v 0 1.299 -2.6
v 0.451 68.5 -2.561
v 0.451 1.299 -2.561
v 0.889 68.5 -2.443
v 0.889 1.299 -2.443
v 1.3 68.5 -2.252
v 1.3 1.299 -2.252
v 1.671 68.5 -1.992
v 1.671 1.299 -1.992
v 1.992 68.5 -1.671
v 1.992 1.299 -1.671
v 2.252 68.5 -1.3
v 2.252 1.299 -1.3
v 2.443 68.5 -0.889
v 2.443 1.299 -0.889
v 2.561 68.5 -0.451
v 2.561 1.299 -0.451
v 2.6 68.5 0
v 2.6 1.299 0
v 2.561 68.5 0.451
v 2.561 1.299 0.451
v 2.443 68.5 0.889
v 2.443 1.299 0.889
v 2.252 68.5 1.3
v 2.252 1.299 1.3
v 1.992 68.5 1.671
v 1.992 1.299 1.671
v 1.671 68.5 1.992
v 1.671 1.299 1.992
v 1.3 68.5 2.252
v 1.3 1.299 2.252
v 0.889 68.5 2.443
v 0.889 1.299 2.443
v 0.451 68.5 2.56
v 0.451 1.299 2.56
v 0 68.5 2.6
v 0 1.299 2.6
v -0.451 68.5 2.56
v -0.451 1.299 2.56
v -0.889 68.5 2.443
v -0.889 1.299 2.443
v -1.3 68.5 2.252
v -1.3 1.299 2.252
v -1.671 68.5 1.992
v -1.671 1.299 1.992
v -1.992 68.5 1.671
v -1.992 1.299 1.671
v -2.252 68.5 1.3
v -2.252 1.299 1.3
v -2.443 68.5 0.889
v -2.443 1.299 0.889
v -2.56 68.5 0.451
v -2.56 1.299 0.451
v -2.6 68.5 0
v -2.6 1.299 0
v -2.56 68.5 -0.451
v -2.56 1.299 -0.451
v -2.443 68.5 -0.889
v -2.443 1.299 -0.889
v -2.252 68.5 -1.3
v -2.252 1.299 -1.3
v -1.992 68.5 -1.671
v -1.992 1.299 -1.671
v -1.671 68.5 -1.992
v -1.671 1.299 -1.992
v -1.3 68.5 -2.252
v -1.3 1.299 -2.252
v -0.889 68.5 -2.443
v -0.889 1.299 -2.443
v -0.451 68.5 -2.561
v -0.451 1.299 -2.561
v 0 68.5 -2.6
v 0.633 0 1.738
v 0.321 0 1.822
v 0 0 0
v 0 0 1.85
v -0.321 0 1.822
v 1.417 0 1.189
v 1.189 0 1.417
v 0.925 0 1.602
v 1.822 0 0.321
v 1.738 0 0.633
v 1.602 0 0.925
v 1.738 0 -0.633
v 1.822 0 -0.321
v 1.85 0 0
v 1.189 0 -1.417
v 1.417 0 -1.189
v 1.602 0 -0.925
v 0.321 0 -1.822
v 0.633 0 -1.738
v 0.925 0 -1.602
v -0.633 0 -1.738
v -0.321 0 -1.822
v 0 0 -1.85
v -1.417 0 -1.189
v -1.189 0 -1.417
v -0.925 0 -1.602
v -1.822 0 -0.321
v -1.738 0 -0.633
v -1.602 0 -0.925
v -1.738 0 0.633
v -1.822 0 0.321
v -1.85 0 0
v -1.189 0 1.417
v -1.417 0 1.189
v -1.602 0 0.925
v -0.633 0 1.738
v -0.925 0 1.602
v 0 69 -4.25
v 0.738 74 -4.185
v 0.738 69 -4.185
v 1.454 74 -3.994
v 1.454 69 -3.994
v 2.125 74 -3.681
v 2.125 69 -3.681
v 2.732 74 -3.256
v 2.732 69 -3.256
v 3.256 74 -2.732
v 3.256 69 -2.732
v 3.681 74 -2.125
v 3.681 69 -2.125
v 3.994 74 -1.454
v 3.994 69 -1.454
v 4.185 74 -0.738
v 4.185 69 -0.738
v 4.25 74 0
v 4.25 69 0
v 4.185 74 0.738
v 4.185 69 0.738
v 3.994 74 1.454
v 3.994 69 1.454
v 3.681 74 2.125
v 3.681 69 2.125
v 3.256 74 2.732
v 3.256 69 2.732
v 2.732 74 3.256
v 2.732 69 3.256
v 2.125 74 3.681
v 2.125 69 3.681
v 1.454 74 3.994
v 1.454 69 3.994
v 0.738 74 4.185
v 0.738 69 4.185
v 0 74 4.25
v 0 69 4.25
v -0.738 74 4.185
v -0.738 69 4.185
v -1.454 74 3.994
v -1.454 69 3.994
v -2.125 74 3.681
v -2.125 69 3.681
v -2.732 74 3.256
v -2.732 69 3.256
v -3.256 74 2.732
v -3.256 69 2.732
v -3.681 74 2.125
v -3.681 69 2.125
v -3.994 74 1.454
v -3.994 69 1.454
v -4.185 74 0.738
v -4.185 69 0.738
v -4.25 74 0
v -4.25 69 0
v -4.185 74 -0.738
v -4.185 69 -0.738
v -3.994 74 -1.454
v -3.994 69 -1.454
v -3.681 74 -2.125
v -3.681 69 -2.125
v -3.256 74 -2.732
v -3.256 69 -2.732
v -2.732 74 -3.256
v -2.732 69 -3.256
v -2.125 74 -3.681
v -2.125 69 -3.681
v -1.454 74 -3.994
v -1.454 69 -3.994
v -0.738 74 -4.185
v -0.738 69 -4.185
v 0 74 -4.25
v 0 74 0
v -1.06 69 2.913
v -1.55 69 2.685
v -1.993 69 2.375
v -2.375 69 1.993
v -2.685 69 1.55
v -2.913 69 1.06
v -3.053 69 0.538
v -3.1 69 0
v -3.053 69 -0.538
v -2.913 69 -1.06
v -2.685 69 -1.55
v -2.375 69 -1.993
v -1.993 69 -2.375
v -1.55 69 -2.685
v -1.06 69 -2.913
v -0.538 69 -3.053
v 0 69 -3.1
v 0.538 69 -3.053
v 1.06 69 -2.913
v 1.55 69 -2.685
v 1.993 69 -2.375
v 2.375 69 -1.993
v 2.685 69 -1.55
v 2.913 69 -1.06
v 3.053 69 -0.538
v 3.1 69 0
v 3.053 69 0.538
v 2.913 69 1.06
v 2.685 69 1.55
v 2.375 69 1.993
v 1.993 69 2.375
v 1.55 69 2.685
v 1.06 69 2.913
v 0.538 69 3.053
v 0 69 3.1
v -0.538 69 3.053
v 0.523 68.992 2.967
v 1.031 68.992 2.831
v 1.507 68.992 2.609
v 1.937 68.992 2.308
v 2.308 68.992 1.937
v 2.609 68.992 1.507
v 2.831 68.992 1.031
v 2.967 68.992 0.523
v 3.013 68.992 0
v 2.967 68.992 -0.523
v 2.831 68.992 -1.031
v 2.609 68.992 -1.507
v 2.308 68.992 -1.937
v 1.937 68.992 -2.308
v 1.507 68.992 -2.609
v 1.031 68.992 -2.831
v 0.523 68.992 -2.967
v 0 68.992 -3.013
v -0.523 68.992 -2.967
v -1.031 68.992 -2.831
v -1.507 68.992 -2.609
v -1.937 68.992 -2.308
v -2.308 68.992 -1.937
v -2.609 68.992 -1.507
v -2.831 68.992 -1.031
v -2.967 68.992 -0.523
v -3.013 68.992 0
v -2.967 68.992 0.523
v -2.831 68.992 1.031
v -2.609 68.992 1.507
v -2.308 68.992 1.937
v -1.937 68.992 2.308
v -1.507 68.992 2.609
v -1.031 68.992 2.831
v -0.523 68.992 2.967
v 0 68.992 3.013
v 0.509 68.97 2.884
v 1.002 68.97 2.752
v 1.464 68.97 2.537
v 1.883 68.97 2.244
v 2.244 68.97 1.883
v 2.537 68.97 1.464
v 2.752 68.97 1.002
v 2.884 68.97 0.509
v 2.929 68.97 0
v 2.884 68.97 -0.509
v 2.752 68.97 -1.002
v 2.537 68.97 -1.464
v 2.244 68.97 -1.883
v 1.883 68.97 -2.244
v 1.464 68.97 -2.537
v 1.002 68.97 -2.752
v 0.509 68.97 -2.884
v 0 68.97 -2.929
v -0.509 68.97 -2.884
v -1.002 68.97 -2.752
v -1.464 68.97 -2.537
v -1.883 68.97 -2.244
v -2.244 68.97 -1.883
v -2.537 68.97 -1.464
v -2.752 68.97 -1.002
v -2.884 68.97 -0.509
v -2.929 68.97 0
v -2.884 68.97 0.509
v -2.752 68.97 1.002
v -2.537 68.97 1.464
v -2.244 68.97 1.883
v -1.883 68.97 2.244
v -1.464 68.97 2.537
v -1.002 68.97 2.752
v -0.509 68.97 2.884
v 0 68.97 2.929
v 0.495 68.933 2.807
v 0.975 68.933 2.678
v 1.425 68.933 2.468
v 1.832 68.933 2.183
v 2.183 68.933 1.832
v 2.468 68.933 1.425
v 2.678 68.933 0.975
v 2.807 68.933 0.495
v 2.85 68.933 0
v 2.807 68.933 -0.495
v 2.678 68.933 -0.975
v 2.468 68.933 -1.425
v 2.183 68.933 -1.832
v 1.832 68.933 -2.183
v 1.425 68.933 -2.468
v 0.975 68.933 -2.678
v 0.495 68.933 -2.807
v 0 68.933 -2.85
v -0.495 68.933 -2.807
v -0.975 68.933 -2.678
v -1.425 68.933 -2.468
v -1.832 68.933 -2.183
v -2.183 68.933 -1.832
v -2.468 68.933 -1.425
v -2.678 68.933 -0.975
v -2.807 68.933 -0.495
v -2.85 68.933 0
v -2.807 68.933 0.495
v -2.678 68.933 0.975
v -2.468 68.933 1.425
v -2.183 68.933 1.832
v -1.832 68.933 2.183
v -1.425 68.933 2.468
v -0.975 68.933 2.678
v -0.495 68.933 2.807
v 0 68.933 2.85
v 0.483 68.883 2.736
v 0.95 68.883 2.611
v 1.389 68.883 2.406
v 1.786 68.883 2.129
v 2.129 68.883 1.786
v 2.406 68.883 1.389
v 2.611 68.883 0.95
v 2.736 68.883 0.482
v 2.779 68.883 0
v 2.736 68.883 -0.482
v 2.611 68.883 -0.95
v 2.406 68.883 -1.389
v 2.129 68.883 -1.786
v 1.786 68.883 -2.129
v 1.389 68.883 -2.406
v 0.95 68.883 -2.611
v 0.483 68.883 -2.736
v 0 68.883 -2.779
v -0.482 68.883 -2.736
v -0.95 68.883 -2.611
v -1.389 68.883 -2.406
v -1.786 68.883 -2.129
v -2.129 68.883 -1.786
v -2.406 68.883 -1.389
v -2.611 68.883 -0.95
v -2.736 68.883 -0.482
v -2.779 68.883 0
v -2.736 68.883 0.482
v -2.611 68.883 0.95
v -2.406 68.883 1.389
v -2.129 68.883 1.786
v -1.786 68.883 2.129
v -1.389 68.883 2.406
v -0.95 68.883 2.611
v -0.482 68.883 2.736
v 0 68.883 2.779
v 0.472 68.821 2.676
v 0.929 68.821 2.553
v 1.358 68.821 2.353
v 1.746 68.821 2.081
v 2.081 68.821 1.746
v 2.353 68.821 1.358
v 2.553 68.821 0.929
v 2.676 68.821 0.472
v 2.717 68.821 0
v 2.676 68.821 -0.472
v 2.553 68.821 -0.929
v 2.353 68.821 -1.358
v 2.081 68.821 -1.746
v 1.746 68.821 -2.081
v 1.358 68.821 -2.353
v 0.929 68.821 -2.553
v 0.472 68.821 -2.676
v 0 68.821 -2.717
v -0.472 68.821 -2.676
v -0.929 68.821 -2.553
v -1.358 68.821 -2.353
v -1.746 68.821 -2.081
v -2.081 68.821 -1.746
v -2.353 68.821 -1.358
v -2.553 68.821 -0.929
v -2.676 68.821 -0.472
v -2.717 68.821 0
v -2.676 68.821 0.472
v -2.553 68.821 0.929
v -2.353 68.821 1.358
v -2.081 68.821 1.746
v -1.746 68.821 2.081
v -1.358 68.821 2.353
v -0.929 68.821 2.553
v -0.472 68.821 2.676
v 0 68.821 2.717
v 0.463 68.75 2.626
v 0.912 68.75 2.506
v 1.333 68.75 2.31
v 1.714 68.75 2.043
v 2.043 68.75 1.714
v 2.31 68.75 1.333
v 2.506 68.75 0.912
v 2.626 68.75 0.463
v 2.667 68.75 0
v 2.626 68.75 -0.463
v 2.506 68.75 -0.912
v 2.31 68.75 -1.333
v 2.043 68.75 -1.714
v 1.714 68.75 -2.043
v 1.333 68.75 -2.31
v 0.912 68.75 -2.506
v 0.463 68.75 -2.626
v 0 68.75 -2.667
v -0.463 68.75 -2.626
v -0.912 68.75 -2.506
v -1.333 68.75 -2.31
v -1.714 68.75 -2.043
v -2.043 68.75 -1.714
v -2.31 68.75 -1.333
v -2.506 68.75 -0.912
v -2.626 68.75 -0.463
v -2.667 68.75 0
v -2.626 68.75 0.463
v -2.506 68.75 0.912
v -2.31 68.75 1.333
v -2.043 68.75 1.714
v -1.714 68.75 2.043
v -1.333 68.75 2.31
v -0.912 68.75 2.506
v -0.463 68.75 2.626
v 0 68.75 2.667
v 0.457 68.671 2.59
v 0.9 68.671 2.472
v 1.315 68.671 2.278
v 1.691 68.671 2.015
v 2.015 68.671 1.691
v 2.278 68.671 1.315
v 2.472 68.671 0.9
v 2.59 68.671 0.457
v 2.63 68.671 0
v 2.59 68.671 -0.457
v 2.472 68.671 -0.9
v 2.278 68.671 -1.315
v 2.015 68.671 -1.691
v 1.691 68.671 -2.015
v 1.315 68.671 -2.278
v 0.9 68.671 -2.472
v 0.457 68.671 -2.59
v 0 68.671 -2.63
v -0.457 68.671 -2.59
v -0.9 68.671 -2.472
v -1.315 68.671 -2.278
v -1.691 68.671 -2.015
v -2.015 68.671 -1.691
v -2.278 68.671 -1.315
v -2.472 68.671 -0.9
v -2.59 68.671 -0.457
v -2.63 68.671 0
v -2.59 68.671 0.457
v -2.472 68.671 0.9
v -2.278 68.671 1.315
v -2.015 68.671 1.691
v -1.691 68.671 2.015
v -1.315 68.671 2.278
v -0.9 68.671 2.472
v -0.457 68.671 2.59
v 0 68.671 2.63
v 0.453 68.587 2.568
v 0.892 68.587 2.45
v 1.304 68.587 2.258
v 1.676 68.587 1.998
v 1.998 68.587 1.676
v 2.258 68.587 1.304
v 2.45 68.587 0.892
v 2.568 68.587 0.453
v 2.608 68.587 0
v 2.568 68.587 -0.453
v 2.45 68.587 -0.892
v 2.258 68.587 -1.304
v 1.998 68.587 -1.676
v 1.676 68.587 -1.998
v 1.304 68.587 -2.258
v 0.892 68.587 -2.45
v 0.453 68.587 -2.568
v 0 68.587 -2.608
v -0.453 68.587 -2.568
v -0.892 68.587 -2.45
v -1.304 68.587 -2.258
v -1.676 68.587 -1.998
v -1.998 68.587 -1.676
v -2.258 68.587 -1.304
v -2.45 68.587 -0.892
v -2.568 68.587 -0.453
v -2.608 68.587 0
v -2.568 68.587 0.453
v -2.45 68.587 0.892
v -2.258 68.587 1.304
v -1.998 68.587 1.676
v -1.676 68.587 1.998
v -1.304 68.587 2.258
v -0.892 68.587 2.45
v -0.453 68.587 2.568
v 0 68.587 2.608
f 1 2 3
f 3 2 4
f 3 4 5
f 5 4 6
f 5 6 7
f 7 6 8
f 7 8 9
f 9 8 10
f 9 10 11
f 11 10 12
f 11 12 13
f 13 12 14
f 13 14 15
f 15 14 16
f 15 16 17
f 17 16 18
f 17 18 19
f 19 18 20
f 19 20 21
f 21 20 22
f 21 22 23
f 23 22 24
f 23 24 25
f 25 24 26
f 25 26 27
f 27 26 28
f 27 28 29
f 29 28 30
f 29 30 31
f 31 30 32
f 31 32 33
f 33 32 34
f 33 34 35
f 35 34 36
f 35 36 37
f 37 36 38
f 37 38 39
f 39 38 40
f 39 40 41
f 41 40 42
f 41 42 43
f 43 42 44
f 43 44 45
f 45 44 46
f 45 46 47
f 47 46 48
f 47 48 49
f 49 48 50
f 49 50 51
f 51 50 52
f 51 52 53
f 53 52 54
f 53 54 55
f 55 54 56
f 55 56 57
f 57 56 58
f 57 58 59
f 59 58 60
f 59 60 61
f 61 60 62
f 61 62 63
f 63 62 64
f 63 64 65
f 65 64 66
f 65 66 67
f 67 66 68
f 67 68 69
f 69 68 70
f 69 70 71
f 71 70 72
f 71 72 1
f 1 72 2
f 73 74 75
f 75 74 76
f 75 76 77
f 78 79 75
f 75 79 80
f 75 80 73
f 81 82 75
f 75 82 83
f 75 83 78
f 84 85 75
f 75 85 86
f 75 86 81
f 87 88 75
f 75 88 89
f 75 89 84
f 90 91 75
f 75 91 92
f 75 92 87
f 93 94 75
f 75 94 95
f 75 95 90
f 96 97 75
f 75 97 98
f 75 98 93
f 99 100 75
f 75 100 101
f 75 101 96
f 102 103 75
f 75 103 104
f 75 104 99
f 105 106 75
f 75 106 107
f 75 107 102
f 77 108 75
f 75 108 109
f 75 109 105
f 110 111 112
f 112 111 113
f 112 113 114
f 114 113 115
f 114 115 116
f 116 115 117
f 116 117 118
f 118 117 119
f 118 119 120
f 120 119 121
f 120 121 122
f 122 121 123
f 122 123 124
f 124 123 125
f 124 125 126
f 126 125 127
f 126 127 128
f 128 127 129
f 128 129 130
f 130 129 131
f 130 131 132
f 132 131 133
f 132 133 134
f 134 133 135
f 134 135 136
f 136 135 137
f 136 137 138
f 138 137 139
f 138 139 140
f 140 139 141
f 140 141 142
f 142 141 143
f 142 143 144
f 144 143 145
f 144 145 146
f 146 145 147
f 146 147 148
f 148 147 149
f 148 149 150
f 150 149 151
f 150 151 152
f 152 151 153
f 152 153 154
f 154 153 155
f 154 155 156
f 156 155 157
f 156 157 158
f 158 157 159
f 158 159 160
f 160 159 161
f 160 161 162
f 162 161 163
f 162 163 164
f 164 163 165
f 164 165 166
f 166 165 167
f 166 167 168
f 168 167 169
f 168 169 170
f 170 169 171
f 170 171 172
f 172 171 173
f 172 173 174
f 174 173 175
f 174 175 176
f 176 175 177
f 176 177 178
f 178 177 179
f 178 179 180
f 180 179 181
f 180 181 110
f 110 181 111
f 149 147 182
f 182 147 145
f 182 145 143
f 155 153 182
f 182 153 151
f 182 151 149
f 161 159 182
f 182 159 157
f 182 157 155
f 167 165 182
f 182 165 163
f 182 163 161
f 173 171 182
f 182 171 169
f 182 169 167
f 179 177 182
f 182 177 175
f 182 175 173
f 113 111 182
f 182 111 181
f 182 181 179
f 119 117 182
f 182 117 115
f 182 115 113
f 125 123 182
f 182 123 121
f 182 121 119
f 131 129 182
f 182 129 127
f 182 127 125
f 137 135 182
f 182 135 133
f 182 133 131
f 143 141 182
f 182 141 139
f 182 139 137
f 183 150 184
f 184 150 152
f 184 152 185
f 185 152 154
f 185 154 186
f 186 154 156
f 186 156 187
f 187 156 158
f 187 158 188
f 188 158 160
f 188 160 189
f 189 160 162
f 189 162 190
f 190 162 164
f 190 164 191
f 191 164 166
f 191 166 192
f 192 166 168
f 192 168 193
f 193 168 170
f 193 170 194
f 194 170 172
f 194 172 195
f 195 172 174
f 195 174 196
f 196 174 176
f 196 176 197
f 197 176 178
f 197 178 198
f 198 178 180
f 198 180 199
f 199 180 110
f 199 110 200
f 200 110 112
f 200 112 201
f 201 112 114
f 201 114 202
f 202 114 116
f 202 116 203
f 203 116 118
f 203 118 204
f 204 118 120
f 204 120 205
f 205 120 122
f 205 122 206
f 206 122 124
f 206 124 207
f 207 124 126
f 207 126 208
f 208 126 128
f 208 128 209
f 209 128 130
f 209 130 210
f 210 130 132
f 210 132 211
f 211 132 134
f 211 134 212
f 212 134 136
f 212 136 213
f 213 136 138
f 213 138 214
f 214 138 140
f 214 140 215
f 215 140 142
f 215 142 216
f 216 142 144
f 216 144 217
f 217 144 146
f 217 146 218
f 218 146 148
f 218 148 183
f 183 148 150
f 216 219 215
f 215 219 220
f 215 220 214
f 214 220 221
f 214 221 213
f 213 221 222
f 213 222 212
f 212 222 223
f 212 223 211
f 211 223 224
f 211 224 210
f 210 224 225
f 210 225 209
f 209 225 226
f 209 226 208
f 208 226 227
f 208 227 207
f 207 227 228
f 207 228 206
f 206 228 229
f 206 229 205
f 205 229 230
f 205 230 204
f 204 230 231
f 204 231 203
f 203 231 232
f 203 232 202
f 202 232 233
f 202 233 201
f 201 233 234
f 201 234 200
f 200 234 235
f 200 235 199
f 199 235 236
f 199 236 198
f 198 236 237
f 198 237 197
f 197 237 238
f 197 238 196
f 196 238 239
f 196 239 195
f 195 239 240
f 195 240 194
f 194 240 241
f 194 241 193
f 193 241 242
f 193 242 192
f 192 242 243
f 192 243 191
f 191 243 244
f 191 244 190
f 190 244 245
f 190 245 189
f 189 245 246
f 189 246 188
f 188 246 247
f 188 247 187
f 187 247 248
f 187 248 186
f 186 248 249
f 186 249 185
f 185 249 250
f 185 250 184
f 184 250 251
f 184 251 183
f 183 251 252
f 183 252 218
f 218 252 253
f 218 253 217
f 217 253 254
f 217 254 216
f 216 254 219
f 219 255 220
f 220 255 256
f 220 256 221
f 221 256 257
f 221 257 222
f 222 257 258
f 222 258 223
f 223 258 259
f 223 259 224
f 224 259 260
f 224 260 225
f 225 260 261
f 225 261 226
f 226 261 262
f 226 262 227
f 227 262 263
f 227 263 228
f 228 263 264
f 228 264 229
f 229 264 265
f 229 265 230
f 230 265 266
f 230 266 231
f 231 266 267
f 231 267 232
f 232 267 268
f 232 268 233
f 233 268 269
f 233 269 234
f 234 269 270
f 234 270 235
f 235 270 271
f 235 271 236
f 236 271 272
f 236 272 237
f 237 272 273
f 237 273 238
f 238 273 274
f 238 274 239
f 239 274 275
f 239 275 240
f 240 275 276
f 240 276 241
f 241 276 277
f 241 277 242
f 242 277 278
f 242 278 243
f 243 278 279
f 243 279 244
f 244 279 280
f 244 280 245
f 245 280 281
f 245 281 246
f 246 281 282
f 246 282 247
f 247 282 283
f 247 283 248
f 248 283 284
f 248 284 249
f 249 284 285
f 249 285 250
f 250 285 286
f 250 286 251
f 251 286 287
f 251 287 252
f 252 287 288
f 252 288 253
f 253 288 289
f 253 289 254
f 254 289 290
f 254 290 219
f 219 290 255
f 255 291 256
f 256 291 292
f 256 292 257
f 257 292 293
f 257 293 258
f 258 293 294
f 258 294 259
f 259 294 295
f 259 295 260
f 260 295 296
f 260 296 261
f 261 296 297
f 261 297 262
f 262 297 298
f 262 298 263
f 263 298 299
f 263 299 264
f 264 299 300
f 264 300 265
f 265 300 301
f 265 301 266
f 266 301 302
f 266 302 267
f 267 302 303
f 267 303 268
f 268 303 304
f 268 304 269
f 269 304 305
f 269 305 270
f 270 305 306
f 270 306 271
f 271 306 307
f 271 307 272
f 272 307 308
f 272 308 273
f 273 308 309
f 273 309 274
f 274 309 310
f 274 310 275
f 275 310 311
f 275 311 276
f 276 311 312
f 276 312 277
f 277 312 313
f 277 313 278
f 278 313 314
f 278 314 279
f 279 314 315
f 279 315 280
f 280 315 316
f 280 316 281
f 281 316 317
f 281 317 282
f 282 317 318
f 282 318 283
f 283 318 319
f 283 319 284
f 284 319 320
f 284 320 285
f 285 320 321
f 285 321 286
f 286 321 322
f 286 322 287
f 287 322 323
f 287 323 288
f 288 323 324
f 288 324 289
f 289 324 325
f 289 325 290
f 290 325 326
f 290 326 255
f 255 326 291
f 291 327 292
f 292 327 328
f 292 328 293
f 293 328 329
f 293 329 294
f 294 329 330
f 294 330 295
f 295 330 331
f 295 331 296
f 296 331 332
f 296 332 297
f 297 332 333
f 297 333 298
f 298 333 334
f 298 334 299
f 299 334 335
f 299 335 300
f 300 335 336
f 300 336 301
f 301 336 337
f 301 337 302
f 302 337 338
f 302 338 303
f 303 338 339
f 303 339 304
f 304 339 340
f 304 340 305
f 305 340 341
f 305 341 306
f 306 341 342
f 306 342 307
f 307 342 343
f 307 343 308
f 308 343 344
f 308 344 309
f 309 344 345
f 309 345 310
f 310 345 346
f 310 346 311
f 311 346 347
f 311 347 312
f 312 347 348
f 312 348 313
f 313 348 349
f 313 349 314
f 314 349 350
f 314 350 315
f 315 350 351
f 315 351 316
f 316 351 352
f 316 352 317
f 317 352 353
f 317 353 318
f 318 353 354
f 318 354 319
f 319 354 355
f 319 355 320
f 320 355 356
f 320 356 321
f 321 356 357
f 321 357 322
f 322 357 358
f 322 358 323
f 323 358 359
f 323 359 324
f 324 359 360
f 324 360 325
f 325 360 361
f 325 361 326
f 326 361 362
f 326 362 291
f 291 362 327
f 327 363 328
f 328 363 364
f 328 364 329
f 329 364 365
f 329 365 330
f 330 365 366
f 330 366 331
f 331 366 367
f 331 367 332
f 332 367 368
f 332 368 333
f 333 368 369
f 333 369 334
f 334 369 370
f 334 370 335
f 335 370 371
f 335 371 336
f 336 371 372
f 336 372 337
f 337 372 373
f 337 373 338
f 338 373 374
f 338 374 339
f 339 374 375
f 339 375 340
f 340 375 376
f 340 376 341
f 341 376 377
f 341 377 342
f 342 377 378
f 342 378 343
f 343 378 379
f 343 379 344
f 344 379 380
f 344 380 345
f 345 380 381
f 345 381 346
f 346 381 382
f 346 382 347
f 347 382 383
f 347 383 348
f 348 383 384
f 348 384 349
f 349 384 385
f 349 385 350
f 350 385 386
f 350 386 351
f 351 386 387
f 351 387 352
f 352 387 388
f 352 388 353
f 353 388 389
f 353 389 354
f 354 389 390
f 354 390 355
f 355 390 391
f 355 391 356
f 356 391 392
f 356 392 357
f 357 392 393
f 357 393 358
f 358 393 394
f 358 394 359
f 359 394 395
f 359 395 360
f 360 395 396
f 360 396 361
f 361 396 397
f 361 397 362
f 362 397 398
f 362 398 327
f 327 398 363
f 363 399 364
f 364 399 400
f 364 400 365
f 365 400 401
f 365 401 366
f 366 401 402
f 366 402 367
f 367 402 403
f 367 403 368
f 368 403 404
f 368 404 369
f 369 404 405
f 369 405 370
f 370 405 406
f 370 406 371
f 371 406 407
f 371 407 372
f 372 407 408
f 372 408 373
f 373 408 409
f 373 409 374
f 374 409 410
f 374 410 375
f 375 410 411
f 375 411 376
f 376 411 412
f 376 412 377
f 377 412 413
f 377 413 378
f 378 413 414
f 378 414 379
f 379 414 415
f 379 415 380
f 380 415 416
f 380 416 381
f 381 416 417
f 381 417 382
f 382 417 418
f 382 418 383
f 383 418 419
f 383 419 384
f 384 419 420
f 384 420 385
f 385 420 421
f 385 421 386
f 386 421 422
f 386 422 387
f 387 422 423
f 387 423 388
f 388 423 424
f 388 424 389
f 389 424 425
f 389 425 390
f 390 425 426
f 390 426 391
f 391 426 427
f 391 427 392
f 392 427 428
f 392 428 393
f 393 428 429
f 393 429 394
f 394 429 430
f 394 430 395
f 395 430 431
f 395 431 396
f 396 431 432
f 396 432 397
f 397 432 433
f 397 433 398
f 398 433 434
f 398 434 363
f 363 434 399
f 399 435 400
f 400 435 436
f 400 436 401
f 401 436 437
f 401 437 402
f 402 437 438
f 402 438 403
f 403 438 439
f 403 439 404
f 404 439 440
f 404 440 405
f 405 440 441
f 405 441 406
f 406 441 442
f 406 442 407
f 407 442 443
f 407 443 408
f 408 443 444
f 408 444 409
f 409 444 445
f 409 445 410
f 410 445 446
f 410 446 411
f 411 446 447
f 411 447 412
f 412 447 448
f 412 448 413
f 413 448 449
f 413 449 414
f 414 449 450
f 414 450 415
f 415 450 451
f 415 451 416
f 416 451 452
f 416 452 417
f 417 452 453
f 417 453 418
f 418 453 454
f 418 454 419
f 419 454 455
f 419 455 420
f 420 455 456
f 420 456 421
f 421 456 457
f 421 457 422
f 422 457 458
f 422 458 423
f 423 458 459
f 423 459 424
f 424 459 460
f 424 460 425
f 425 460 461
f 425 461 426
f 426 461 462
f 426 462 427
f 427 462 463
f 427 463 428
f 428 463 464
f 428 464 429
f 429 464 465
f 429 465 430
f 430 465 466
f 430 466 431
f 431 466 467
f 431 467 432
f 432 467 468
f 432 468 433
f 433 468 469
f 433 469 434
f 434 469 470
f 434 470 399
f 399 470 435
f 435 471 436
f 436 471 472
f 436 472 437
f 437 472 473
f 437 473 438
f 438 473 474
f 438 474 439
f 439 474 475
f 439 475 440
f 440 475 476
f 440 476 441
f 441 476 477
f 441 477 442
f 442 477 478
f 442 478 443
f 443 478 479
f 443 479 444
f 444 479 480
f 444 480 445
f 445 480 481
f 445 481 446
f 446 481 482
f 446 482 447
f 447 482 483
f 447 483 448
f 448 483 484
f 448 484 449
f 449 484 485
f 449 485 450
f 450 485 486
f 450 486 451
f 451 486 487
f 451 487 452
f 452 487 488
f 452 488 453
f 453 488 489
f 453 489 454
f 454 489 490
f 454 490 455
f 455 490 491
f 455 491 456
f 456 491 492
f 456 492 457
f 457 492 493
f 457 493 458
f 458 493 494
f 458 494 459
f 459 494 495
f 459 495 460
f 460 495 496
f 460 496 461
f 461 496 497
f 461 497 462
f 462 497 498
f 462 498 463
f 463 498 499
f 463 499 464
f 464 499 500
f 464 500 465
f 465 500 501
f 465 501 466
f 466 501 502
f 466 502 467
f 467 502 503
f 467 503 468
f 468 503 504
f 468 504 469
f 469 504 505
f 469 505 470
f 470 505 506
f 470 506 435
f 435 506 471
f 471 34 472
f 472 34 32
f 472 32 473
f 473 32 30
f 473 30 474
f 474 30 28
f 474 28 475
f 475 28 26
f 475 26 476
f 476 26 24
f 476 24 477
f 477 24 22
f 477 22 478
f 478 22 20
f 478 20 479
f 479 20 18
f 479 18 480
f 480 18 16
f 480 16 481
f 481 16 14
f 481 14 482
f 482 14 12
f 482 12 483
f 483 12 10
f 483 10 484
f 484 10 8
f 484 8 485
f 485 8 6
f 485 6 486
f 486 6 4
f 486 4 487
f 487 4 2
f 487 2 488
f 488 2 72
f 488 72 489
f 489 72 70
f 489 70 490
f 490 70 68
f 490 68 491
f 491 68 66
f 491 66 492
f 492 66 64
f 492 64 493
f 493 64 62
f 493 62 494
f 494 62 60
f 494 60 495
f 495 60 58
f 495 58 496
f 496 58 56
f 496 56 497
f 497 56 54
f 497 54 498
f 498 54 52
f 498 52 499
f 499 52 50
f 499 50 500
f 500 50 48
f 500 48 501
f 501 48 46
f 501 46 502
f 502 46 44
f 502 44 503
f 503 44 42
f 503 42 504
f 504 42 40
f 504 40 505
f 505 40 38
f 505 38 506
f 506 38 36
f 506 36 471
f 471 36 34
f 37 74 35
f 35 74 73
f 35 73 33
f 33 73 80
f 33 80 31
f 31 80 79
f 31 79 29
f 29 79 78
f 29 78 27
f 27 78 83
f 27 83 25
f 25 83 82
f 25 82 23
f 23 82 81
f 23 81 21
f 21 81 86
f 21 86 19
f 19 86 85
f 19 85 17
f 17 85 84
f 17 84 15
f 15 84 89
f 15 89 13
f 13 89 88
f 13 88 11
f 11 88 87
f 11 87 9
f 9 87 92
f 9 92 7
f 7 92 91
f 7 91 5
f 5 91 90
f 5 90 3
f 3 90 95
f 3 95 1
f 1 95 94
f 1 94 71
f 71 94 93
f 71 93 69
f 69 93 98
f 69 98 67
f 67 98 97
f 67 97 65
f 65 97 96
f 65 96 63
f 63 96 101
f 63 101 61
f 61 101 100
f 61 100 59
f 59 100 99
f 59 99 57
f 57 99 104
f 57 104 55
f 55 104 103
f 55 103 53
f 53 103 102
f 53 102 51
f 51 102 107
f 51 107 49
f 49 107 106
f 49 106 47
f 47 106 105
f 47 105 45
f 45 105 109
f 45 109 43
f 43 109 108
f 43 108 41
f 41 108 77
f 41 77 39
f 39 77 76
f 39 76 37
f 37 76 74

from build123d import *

# Parameters (mm, degrees)
SKETCH1_R           = 2.6
BOSS_EXTRUDE1_DEPTH = 69
SKETCH2_R           = 4.25
BOSS_EXTRUDE2_DEPTH = 5
FILLET1_R           = 0.5
CHAMFER1_SIZE       = 0.75
CHAMFER1_SIZE2      = 1.299038106


with BuildPart() as part:
    # Sketch1 → Boss-Extrude1 (new body)
    with BuildSketch(Plane(origin=(0, 0, 0), x_dir=(1, 0, 0), z_dir=(0, 1, 0))):
        with Locations(Location((0, 0, 0), (0, 0, 270))):
            Circle(SKETCH1_R)
    extrude(amount=BOSS_EXTRUDE1_DEPTH)

    # Sketch2 → Boss-Extrude2 (add)
    with BuildSketch(Plane(origin=(0, 69, 0), x_dir=(1, 0, 0), z_dir=(0, 1, 0))):
        with Locations(Location((0, 0, 0), (0, 0, 270))):
            Circle(SKETCH2_R)
    extrude(amount=BOSS_EXTRUDE2_DEPTH)

    # Fillet1
    fillet1_edges = [part.edges().sort_by_distance(p)[0] for p in [
        (0, 69, -2.6),
    ]]
    fillet(fillet1_edges, radius=FILLET1_R)

    # Chamfer1
    chamfer1_edges = [part.edges().sort_by_distance(p)[0] for p in [
        (0, 0, -2.6),
    ]]
    chamfer1_side = [part.faces().sort_by_distance(p)[0] for p in [
        (0, 0, 0),
    ]]
    chamfer(chamfer1_edges, length=CHAMFER1_SIZE, length2=CHAMFER1_SIZE2, reference=chamfer1_side[0])


solid = part.part
